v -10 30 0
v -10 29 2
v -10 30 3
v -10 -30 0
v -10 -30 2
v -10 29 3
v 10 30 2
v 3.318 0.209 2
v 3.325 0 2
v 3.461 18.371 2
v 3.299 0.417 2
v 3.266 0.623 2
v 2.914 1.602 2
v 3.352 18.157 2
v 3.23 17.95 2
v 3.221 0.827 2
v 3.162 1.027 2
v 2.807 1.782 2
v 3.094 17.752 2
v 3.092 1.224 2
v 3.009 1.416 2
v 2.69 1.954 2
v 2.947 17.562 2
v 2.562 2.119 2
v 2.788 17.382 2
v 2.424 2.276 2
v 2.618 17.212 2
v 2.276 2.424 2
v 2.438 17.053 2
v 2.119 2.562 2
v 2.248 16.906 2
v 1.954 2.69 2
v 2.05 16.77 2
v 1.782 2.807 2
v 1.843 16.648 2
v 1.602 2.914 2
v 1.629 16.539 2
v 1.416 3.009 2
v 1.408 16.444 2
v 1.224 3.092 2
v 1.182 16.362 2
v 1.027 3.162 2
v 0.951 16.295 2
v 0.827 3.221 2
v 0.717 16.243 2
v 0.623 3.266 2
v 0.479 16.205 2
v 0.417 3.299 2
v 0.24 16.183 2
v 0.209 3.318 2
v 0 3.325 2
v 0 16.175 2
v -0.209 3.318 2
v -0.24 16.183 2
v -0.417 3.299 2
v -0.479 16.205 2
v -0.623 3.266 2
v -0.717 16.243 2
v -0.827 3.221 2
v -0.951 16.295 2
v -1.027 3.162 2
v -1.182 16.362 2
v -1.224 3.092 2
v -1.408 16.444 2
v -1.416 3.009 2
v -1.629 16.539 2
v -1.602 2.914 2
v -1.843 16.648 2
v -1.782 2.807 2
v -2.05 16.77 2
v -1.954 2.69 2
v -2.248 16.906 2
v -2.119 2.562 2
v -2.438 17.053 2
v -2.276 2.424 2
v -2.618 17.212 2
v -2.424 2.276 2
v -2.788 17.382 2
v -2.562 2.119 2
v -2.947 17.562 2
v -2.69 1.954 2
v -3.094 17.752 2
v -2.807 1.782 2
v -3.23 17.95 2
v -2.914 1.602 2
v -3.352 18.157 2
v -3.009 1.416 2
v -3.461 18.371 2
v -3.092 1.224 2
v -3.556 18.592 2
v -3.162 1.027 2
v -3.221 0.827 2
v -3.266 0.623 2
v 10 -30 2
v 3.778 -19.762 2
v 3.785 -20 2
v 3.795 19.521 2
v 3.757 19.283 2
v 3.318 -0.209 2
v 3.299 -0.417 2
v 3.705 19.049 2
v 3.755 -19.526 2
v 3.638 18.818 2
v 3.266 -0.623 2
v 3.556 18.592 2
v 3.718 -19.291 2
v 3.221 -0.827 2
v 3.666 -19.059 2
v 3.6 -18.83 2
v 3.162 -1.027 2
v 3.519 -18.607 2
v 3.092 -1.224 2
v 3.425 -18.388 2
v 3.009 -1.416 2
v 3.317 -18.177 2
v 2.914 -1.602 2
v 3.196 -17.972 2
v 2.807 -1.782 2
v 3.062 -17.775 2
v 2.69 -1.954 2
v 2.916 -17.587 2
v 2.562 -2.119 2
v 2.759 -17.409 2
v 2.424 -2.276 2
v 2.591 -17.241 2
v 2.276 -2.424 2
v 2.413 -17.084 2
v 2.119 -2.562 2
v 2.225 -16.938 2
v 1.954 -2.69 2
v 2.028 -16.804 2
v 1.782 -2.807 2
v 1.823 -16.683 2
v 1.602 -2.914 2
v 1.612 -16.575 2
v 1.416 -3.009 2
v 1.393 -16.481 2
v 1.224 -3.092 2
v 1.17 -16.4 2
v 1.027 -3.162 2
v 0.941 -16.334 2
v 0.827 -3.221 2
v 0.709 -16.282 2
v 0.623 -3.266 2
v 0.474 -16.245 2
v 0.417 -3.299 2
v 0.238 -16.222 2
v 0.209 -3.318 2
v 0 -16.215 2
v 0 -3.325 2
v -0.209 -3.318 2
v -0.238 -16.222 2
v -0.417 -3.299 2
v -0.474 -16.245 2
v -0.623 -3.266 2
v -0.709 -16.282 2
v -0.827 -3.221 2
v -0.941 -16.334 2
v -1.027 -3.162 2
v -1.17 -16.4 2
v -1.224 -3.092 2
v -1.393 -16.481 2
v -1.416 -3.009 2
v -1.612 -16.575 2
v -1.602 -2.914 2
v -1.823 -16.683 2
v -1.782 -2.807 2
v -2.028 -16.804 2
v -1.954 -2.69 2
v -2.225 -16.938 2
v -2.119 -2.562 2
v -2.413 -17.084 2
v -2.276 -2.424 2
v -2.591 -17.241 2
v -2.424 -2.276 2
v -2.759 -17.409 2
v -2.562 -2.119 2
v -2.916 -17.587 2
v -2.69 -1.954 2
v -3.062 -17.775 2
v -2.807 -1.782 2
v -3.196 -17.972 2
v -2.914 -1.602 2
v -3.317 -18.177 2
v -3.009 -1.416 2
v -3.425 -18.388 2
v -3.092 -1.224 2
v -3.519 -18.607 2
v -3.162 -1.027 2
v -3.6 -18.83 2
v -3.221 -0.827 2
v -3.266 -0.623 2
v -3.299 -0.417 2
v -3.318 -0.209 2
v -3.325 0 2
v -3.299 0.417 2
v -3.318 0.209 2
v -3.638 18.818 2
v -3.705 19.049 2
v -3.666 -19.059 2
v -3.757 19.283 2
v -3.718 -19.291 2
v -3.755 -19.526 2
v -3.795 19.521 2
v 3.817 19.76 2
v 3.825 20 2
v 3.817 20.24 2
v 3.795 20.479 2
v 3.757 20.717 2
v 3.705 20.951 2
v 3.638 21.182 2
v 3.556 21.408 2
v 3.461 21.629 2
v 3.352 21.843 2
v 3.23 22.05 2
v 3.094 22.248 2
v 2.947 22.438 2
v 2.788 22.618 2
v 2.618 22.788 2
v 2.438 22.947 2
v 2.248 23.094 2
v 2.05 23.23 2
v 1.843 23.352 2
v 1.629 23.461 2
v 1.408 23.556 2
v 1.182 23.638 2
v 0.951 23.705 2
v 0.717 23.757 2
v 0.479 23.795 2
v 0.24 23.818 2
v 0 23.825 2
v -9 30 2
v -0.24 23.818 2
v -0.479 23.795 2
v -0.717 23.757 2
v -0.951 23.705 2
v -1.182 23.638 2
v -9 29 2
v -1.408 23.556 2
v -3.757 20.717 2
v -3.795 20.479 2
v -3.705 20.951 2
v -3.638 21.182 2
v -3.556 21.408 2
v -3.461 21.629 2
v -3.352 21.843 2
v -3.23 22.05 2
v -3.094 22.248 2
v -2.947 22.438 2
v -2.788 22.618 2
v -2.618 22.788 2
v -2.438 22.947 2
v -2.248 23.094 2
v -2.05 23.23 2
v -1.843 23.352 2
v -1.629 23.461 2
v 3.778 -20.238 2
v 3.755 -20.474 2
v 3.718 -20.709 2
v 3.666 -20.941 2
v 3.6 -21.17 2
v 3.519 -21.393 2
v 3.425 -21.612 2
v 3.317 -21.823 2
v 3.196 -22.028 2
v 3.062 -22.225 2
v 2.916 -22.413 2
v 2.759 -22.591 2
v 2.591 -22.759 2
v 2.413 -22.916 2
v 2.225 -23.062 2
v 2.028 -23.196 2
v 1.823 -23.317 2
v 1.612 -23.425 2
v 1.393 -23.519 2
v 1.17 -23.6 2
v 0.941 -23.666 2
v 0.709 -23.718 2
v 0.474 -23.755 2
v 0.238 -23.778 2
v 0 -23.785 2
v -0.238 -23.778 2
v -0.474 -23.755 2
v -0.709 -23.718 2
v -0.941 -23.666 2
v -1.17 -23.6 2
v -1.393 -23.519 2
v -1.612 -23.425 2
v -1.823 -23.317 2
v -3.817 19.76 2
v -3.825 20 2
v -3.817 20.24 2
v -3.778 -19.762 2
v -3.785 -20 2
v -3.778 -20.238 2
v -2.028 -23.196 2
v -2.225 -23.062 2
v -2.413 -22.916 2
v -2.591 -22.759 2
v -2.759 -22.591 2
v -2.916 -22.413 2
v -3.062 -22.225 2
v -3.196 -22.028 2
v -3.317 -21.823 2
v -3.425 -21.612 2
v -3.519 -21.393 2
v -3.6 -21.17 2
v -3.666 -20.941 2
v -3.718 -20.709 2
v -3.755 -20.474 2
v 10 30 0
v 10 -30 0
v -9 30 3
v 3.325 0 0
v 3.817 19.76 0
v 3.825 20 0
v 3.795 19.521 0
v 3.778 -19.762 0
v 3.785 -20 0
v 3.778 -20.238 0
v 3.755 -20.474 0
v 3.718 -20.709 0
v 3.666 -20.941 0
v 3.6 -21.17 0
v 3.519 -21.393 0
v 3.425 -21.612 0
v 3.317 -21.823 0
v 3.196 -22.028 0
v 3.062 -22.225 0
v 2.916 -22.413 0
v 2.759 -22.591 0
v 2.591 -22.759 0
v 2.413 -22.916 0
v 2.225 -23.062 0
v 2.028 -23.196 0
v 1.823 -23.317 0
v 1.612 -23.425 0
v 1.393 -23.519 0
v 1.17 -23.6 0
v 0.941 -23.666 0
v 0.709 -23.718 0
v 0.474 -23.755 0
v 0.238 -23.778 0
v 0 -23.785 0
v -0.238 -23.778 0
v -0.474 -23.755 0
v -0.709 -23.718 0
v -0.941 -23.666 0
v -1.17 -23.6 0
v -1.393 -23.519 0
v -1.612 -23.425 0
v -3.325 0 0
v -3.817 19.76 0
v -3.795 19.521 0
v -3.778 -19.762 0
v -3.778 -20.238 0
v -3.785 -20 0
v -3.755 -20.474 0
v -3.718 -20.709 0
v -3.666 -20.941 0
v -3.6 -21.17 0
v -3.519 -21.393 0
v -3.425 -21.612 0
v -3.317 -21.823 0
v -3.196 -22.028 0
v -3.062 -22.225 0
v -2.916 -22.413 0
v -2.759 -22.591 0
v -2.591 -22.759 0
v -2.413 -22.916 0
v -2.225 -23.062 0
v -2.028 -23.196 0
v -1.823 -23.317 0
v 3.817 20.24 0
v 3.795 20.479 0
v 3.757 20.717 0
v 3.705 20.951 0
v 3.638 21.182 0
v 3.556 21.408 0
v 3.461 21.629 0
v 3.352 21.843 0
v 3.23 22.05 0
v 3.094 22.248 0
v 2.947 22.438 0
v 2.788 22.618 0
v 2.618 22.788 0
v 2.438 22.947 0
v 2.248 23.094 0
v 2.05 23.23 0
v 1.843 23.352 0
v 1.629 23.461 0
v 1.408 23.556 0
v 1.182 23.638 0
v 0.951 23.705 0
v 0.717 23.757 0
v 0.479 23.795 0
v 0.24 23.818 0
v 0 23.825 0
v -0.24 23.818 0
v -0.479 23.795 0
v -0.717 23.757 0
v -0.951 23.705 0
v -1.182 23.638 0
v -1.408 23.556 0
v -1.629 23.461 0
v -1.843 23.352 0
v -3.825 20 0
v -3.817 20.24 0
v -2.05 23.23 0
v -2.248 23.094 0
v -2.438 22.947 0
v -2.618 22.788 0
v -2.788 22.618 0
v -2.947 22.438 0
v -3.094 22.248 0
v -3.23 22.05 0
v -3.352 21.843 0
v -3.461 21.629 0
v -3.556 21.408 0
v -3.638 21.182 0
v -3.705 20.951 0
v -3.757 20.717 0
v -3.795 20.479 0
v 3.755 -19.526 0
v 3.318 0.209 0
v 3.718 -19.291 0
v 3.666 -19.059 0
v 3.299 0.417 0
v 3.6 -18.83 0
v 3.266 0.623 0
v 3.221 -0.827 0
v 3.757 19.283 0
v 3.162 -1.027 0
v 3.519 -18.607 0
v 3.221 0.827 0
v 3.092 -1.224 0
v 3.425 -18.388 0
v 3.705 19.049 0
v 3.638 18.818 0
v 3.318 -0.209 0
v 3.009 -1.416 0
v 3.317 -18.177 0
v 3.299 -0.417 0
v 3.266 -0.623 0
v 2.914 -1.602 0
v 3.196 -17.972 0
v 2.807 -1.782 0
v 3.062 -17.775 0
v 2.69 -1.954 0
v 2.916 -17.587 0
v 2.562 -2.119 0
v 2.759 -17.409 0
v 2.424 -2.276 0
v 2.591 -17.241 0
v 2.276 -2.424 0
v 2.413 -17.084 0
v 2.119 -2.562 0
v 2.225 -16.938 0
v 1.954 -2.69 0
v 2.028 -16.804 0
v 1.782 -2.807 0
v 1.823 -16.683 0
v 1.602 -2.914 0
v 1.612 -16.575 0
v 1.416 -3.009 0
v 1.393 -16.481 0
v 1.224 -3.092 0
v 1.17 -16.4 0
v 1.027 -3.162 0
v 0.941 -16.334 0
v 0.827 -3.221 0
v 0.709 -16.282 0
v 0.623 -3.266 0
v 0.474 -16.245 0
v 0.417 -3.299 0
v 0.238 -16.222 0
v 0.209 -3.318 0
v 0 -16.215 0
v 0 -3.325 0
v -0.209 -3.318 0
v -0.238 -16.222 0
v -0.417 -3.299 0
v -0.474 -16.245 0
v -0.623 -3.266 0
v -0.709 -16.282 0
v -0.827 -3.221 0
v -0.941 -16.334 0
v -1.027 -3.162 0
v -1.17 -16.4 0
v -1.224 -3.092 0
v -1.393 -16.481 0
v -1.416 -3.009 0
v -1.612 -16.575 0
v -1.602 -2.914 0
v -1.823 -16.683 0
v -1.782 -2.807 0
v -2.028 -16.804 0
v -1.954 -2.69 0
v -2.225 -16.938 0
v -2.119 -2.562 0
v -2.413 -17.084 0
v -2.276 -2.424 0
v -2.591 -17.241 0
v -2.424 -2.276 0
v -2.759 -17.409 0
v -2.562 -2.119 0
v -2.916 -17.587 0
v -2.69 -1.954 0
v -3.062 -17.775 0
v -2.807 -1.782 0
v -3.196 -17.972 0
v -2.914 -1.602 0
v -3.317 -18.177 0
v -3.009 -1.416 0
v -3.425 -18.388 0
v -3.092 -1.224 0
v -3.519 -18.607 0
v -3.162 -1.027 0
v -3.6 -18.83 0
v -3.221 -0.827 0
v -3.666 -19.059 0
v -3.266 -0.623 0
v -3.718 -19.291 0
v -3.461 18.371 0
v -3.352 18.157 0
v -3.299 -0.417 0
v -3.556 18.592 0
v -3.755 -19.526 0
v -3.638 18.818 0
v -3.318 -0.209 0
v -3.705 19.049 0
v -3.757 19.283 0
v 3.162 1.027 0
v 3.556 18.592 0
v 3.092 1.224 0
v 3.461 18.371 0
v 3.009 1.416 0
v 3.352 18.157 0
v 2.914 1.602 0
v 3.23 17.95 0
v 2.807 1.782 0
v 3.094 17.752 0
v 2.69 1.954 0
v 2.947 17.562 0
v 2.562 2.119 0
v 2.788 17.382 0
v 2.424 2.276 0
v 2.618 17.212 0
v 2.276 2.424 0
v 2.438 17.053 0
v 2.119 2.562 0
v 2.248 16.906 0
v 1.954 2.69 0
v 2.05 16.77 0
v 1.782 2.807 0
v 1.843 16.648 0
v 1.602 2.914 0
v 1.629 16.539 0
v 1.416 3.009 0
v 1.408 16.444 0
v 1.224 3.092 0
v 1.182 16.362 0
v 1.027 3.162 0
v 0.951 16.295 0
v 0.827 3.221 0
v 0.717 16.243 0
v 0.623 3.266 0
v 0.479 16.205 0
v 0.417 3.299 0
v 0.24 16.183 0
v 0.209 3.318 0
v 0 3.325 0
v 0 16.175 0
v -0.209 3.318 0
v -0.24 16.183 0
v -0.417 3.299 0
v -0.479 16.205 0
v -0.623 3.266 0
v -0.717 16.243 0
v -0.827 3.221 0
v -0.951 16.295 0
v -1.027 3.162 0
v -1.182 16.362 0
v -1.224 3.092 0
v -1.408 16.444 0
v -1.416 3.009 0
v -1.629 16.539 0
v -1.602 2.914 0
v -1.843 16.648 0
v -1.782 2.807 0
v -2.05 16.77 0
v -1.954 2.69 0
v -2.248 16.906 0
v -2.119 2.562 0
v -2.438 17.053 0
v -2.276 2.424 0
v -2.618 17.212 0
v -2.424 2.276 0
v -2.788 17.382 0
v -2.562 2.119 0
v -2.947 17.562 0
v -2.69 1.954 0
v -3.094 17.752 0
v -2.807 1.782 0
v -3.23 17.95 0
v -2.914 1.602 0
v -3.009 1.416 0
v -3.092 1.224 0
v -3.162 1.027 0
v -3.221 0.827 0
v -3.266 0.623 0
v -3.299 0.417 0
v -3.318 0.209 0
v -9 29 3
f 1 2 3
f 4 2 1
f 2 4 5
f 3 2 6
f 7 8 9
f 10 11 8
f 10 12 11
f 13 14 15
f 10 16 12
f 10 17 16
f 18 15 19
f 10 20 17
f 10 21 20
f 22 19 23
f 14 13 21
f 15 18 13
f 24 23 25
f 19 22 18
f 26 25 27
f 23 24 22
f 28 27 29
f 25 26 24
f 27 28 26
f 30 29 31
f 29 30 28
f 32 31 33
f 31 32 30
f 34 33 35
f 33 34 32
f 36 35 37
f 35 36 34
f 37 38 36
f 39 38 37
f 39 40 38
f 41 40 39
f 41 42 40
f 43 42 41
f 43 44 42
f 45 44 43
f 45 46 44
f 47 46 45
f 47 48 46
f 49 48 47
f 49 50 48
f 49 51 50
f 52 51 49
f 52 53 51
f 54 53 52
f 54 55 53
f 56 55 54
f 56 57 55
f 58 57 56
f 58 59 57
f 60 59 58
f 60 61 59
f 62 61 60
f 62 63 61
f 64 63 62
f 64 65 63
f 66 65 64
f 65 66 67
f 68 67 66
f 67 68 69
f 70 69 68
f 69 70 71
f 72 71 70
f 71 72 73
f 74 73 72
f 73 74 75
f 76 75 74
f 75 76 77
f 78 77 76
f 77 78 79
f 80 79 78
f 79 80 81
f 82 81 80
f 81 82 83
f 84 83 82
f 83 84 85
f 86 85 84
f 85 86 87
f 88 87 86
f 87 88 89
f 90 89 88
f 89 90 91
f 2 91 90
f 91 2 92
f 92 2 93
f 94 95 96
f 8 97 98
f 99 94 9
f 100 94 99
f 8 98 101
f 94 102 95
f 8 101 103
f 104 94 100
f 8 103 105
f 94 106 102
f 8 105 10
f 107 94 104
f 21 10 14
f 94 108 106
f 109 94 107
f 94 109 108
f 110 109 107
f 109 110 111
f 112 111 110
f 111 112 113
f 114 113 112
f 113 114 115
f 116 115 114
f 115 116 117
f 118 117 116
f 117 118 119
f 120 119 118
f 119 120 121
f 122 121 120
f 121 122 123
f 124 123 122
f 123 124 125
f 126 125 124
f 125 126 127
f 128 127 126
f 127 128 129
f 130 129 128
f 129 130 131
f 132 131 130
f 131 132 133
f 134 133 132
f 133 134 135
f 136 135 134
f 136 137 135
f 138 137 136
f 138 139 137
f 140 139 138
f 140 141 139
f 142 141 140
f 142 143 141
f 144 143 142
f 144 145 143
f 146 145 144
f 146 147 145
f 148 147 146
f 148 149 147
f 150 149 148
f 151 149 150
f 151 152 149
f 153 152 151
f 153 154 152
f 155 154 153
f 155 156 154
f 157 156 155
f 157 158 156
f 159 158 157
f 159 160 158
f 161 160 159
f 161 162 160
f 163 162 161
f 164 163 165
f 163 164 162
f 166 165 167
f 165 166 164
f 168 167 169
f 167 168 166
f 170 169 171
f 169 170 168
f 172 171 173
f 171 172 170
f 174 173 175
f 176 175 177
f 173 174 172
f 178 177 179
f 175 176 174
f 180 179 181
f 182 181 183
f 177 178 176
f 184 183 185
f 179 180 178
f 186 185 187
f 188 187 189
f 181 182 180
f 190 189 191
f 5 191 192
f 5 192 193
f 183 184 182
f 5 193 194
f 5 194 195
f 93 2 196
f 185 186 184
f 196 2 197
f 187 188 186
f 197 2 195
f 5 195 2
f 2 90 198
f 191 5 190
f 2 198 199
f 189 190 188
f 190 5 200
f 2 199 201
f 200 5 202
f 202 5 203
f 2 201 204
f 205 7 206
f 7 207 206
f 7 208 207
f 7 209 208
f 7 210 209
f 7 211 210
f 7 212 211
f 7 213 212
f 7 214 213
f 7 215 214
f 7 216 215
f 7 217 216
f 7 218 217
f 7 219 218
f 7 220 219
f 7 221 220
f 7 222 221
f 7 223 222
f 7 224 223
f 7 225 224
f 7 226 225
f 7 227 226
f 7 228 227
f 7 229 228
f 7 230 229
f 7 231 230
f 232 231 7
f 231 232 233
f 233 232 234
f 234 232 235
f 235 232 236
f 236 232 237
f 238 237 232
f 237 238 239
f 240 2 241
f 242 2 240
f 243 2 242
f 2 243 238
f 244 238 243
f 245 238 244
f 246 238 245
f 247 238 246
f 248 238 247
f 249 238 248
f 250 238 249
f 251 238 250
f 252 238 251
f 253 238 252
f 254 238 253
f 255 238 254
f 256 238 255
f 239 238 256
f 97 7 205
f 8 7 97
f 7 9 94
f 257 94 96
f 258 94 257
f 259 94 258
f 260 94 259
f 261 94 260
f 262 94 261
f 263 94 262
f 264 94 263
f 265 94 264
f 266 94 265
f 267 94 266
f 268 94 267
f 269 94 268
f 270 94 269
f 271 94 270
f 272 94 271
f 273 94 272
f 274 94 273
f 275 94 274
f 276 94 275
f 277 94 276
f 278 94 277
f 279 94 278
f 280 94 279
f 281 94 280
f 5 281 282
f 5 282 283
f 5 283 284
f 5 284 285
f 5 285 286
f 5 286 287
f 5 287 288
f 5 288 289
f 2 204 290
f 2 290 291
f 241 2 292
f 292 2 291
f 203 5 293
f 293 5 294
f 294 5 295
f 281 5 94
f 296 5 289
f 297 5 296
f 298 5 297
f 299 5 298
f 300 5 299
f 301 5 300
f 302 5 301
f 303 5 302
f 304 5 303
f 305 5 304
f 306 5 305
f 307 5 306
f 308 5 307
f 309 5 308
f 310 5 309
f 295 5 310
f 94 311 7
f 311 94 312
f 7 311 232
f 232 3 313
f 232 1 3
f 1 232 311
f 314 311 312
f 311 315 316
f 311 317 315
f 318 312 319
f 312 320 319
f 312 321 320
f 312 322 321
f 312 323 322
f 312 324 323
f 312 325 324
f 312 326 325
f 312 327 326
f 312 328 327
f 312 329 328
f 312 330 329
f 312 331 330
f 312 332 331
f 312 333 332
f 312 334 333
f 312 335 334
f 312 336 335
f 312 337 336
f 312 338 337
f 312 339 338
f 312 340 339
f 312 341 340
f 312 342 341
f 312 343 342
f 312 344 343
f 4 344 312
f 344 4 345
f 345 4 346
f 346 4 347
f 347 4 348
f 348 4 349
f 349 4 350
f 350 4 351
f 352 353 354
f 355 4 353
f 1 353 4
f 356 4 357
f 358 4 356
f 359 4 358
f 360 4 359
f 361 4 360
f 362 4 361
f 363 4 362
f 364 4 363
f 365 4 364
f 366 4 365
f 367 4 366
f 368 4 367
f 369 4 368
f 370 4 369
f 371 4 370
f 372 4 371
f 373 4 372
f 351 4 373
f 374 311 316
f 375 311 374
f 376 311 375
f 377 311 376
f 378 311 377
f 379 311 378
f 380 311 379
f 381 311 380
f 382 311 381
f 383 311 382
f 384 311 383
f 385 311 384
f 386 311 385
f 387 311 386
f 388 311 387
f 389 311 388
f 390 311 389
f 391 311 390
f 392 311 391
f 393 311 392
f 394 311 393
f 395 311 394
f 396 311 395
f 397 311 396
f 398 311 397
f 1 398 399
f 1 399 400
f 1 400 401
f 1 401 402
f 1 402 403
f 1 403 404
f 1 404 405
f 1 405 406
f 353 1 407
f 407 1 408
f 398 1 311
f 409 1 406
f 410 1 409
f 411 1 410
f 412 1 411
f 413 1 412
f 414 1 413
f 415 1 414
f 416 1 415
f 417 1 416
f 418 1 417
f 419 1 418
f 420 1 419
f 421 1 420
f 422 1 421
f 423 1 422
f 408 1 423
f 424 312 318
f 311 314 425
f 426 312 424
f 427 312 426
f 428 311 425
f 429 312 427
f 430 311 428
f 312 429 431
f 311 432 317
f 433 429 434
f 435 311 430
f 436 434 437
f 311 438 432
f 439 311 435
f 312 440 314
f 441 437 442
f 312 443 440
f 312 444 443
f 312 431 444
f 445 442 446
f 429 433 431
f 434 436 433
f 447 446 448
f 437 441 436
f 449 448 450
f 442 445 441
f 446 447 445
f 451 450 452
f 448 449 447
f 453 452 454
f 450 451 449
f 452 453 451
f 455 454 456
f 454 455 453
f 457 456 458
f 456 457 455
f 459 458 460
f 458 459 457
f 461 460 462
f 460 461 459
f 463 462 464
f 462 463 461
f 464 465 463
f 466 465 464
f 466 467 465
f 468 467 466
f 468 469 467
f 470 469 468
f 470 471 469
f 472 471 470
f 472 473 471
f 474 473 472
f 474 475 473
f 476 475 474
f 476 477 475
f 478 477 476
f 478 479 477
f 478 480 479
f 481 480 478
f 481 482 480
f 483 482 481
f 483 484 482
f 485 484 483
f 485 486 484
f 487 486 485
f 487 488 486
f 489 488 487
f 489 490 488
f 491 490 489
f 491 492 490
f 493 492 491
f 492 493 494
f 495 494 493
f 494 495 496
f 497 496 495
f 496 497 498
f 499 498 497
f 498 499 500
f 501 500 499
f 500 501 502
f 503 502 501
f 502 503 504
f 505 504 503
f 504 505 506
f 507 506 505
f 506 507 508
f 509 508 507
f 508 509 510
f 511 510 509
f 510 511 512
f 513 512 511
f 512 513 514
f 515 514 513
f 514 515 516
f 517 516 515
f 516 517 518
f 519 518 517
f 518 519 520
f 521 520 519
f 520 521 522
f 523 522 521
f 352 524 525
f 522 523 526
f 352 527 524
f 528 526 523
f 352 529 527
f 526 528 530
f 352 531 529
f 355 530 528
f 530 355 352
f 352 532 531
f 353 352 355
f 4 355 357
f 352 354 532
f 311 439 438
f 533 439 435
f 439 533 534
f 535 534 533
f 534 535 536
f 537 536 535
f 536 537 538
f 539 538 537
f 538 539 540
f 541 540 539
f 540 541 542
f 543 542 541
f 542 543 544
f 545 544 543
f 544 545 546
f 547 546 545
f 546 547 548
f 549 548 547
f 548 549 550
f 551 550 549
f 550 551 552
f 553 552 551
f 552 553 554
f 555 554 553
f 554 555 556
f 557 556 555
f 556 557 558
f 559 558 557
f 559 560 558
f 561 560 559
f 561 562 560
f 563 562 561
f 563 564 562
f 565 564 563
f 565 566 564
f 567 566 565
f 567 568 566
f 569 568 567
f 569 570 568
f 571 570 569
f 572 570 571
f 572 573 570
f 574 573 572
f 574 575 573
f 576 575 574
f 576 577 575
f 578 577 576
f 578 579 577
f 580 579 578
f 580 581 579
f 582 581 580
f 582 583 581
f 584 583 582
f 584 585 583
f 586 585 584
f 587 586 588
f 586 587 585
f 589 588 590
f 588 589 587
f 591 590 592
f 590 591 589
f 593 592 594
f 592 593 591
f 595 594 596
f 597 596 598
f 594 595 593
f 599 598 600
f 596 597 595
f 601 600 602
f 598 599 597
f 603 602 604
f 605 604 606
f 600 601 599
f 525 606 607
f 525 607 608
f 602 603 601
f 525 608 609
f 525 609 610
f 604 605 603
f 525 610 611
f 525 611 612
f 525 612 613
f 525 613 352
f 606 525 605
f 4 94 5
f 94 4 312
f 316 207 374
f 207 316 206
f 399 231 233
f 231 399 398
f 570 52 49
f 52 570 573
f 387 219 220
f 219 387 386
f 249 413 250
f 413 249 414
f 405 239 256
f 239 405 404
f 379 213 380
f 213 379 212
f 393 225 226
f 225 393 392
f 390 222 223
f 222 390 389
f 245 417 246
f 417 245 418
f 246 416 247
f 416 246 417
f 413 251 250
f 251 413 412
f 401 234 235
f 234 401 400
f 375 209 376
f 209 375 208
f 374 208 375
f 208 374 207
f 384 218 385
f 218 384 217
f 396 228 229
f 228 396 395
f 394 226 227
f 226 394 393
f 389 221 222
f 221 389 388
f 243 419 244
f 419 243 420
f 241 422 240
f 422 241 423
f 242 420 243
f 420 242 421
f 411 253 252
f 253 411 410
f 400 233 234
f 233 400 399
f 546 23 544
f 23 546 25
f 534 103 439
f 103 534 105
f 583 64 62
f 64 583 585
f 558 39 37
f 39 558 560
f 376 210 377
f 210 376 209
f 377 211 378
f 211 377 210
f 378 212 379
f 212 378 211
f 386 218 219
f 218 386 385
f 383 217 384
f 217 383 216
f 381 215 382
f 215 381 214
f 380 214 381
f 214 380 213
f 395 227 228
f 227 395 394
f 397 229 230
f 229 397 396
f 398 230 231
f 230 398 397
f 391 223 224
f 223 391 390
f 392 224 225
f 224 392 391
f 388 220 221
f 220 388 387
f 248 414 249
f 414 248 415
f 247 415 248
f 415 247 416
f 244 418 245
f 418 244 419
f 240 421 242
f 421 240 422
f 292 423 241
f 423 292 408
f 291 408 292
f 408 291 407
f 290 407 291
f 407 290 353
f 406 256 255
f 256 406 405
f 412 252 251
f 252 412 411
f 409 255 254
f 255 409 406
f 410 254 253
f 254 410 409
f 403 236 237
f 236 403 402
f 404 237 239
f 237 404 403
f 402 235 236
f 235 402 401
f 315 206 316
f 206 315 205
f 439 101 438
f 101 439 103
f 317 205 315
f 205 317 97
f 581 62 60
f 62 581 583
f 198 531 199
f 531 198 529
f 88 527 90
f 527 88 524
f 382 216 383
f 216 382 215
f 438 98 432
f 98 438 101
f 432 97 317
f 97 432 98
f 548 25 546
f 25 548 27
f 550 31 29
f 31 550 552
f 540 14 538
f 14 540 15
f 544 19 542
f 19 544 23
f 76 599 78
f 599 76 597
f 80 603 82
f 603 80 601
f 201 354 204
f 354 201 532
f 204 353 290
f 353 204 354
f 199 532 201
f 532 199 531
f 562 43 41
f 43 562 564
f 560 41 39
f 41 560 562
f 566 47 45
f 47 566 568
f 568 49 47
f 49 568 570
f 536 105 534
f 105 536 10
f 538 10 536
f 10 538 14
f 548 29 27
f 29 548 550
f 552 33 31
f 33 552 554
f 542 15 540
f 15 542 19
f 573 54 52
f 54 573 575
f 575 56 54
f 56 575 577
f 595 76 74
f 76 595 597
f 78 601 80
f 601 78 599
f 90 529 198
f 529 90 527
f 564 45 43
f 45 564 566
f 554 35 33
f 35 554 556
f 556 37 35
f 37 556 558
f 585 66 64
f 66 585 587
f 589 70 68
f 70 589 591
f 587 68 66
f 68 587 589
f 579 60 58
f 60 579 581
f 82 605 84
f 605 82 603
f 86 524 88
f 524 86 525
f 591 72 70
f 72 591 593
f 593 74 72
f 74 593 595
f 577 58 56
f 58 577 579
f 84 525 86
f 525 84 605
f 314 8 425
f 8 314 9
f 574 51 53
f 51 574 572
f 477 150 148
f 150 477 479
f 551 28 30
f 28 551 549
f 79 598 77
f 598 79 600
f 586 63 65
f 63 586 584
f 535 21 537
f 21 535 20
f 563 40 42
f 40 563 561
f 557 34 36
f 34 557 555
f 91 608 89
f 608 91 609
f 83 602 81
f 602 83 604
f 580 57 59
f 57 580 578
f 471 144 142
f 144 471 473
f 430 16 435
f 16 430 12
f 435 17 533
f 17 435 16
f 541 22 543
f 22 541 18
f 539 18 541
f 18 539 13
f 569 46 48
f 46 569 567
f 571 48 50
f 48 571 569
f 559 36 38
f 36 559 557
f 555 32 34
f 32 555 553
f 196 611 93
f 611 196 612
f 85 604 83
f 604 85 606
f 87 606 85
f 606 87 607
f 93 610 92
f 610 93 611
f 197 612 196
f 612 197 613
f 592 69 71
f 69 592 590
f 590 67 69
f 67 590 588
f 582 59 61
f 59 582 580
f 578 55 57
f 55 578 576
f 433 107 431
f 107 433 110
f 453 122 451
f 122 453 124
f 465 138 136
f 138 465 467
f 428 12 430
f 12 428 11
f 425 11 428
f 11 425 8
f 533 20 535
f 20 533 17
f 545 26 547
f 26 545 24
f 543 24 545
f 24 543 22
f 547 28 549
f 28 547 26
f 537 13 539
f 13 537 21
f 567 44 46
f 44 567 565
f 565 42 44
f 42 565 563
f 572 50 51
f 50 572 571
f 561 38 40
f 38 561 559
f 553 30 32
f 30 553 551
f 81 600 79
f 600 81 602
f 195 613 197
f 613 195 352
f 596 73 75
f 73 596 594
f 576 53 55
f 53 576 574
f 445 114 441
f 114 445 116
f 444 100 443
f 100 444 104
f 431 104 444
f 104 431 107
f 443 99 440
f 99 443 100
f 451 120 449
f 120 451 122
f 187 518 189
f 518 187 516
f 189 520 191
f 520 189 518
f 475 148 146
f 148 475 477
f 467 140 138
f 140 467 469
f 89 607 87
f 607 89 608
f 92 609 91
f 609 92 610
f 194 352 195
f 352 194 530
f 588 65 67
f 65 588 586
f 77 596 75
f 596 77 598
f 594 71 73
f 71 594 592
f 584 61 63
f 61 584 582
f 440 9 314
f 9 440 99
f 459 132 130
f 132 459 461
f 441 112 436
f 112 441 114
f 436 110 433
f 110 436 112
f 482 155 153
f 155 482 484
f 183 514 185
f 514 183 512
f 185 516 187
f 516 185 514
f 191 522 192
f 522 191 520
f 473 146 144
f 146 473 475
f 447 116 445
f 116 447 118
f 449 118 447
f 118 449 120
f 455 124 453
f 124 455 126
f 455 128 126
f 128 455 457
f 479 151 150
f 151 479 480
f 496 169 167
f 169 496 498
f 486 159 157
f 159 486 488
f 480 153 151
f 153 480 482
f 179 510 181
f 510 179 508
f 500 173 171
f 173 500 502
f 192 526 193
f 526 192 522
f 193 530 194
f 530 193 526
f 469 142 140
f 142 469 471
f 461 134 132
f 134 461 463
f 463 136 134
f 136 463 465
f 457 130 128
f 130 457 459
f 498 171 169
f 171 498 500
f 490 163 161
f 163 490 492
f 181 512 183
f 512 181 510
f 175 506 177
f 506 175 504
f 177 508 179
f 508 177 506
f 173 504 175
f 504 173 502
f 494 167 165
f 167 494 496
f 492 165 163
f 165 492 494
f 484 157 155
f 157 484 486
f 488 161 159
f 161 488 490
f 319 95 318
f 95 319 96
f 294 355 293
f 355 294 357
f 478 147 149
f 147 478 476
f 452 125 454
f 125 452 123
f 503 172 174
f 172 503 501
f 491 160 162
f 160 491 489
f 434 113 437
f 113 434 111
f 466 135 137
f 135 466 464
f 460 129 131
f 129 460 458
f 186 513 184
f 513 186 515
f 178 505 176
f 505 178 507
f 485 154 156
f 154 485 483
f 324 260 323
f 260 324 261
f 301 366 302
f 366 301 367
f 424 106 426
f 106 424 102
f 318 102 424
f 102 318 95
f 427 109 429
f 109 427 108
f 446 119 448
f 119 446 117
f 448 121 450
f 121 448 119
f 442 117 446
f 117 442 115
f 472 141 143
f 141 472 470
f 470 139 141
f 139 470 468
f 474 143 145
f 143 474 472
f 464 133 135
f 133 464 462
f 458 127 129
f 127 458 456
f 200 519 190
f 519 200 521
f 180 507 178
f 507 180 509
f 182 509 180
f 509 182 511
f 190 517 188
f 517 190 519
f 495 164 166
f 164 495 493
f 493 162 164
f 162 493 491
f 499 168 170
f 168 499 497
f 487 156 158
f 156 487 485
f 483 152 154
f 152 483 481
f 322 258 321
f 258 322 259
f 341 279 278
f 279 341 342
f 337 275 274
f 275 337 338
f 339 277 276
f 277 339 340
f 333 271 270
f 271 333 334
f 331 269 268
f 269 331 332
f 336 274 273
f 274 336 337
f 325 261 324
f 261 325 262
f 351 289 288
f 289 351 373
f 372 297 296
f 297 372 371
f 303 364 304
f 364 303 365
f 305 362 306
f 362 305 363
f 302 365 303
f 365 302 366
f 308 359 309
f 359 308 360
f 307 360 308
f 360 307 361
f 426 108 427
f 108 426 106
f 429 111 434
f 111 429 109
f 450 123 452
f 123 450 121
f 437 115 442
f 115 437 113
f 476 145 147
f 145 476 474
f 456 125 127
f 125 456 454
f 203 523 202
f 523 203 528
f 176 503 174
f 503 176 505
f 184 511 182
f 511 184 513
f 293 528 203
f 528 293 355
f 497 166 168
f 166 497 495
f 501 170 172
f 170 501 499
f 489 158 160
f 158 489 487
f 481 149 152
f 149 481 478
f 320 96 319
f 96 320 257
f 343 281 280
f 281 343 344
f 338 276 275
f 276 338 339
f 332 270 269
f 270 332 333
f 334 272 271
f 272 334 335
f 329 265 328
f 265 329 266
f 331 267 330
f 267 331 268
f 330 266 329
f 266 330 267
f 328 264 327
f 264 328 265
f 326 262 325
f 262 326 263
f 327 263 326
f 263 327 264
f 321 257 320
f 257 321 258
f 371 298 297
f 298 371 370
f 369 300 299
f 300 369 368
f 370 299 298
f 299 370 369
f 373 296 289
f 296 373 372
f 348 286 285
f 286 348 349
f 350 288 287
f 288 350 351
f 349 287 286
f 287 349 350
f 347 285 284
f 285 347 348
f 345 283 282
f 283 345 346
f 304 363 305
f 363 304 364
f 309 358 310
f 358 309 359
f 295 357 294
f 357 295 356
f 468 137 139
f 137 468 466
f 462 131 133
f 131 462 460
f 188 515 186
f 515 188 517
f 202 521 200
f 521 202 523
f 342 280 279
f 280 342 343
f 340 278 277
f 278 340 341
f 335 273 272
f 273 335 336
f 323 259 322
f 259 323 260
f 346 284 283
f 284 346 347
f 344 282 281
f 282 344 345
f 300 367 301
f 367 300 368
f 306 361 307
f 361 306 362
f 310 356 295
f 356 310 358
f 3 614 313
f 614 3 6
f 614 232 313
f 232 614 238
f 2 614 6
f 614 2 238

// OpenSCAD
translate ([-5, -15, 0]) {
    difference () {
        // Outside Box
        translate([-5, -15, 0]) cube([20, 60, 2]);
        // DC Jack
        translate([5, 35, 0]) cylinder(h=2, d=7.65, $fn=100);
        // Pots
        translate([5, 15, 0]) cylinder(h=2, d=6.65, $fn=100);
        // LED
        translate([5, -5, 0]) cylinder(h=2, d=7.57, $fn=100);
    }   
    translate([-5, 44, 2]) cube([1, 1, 1]);
}
